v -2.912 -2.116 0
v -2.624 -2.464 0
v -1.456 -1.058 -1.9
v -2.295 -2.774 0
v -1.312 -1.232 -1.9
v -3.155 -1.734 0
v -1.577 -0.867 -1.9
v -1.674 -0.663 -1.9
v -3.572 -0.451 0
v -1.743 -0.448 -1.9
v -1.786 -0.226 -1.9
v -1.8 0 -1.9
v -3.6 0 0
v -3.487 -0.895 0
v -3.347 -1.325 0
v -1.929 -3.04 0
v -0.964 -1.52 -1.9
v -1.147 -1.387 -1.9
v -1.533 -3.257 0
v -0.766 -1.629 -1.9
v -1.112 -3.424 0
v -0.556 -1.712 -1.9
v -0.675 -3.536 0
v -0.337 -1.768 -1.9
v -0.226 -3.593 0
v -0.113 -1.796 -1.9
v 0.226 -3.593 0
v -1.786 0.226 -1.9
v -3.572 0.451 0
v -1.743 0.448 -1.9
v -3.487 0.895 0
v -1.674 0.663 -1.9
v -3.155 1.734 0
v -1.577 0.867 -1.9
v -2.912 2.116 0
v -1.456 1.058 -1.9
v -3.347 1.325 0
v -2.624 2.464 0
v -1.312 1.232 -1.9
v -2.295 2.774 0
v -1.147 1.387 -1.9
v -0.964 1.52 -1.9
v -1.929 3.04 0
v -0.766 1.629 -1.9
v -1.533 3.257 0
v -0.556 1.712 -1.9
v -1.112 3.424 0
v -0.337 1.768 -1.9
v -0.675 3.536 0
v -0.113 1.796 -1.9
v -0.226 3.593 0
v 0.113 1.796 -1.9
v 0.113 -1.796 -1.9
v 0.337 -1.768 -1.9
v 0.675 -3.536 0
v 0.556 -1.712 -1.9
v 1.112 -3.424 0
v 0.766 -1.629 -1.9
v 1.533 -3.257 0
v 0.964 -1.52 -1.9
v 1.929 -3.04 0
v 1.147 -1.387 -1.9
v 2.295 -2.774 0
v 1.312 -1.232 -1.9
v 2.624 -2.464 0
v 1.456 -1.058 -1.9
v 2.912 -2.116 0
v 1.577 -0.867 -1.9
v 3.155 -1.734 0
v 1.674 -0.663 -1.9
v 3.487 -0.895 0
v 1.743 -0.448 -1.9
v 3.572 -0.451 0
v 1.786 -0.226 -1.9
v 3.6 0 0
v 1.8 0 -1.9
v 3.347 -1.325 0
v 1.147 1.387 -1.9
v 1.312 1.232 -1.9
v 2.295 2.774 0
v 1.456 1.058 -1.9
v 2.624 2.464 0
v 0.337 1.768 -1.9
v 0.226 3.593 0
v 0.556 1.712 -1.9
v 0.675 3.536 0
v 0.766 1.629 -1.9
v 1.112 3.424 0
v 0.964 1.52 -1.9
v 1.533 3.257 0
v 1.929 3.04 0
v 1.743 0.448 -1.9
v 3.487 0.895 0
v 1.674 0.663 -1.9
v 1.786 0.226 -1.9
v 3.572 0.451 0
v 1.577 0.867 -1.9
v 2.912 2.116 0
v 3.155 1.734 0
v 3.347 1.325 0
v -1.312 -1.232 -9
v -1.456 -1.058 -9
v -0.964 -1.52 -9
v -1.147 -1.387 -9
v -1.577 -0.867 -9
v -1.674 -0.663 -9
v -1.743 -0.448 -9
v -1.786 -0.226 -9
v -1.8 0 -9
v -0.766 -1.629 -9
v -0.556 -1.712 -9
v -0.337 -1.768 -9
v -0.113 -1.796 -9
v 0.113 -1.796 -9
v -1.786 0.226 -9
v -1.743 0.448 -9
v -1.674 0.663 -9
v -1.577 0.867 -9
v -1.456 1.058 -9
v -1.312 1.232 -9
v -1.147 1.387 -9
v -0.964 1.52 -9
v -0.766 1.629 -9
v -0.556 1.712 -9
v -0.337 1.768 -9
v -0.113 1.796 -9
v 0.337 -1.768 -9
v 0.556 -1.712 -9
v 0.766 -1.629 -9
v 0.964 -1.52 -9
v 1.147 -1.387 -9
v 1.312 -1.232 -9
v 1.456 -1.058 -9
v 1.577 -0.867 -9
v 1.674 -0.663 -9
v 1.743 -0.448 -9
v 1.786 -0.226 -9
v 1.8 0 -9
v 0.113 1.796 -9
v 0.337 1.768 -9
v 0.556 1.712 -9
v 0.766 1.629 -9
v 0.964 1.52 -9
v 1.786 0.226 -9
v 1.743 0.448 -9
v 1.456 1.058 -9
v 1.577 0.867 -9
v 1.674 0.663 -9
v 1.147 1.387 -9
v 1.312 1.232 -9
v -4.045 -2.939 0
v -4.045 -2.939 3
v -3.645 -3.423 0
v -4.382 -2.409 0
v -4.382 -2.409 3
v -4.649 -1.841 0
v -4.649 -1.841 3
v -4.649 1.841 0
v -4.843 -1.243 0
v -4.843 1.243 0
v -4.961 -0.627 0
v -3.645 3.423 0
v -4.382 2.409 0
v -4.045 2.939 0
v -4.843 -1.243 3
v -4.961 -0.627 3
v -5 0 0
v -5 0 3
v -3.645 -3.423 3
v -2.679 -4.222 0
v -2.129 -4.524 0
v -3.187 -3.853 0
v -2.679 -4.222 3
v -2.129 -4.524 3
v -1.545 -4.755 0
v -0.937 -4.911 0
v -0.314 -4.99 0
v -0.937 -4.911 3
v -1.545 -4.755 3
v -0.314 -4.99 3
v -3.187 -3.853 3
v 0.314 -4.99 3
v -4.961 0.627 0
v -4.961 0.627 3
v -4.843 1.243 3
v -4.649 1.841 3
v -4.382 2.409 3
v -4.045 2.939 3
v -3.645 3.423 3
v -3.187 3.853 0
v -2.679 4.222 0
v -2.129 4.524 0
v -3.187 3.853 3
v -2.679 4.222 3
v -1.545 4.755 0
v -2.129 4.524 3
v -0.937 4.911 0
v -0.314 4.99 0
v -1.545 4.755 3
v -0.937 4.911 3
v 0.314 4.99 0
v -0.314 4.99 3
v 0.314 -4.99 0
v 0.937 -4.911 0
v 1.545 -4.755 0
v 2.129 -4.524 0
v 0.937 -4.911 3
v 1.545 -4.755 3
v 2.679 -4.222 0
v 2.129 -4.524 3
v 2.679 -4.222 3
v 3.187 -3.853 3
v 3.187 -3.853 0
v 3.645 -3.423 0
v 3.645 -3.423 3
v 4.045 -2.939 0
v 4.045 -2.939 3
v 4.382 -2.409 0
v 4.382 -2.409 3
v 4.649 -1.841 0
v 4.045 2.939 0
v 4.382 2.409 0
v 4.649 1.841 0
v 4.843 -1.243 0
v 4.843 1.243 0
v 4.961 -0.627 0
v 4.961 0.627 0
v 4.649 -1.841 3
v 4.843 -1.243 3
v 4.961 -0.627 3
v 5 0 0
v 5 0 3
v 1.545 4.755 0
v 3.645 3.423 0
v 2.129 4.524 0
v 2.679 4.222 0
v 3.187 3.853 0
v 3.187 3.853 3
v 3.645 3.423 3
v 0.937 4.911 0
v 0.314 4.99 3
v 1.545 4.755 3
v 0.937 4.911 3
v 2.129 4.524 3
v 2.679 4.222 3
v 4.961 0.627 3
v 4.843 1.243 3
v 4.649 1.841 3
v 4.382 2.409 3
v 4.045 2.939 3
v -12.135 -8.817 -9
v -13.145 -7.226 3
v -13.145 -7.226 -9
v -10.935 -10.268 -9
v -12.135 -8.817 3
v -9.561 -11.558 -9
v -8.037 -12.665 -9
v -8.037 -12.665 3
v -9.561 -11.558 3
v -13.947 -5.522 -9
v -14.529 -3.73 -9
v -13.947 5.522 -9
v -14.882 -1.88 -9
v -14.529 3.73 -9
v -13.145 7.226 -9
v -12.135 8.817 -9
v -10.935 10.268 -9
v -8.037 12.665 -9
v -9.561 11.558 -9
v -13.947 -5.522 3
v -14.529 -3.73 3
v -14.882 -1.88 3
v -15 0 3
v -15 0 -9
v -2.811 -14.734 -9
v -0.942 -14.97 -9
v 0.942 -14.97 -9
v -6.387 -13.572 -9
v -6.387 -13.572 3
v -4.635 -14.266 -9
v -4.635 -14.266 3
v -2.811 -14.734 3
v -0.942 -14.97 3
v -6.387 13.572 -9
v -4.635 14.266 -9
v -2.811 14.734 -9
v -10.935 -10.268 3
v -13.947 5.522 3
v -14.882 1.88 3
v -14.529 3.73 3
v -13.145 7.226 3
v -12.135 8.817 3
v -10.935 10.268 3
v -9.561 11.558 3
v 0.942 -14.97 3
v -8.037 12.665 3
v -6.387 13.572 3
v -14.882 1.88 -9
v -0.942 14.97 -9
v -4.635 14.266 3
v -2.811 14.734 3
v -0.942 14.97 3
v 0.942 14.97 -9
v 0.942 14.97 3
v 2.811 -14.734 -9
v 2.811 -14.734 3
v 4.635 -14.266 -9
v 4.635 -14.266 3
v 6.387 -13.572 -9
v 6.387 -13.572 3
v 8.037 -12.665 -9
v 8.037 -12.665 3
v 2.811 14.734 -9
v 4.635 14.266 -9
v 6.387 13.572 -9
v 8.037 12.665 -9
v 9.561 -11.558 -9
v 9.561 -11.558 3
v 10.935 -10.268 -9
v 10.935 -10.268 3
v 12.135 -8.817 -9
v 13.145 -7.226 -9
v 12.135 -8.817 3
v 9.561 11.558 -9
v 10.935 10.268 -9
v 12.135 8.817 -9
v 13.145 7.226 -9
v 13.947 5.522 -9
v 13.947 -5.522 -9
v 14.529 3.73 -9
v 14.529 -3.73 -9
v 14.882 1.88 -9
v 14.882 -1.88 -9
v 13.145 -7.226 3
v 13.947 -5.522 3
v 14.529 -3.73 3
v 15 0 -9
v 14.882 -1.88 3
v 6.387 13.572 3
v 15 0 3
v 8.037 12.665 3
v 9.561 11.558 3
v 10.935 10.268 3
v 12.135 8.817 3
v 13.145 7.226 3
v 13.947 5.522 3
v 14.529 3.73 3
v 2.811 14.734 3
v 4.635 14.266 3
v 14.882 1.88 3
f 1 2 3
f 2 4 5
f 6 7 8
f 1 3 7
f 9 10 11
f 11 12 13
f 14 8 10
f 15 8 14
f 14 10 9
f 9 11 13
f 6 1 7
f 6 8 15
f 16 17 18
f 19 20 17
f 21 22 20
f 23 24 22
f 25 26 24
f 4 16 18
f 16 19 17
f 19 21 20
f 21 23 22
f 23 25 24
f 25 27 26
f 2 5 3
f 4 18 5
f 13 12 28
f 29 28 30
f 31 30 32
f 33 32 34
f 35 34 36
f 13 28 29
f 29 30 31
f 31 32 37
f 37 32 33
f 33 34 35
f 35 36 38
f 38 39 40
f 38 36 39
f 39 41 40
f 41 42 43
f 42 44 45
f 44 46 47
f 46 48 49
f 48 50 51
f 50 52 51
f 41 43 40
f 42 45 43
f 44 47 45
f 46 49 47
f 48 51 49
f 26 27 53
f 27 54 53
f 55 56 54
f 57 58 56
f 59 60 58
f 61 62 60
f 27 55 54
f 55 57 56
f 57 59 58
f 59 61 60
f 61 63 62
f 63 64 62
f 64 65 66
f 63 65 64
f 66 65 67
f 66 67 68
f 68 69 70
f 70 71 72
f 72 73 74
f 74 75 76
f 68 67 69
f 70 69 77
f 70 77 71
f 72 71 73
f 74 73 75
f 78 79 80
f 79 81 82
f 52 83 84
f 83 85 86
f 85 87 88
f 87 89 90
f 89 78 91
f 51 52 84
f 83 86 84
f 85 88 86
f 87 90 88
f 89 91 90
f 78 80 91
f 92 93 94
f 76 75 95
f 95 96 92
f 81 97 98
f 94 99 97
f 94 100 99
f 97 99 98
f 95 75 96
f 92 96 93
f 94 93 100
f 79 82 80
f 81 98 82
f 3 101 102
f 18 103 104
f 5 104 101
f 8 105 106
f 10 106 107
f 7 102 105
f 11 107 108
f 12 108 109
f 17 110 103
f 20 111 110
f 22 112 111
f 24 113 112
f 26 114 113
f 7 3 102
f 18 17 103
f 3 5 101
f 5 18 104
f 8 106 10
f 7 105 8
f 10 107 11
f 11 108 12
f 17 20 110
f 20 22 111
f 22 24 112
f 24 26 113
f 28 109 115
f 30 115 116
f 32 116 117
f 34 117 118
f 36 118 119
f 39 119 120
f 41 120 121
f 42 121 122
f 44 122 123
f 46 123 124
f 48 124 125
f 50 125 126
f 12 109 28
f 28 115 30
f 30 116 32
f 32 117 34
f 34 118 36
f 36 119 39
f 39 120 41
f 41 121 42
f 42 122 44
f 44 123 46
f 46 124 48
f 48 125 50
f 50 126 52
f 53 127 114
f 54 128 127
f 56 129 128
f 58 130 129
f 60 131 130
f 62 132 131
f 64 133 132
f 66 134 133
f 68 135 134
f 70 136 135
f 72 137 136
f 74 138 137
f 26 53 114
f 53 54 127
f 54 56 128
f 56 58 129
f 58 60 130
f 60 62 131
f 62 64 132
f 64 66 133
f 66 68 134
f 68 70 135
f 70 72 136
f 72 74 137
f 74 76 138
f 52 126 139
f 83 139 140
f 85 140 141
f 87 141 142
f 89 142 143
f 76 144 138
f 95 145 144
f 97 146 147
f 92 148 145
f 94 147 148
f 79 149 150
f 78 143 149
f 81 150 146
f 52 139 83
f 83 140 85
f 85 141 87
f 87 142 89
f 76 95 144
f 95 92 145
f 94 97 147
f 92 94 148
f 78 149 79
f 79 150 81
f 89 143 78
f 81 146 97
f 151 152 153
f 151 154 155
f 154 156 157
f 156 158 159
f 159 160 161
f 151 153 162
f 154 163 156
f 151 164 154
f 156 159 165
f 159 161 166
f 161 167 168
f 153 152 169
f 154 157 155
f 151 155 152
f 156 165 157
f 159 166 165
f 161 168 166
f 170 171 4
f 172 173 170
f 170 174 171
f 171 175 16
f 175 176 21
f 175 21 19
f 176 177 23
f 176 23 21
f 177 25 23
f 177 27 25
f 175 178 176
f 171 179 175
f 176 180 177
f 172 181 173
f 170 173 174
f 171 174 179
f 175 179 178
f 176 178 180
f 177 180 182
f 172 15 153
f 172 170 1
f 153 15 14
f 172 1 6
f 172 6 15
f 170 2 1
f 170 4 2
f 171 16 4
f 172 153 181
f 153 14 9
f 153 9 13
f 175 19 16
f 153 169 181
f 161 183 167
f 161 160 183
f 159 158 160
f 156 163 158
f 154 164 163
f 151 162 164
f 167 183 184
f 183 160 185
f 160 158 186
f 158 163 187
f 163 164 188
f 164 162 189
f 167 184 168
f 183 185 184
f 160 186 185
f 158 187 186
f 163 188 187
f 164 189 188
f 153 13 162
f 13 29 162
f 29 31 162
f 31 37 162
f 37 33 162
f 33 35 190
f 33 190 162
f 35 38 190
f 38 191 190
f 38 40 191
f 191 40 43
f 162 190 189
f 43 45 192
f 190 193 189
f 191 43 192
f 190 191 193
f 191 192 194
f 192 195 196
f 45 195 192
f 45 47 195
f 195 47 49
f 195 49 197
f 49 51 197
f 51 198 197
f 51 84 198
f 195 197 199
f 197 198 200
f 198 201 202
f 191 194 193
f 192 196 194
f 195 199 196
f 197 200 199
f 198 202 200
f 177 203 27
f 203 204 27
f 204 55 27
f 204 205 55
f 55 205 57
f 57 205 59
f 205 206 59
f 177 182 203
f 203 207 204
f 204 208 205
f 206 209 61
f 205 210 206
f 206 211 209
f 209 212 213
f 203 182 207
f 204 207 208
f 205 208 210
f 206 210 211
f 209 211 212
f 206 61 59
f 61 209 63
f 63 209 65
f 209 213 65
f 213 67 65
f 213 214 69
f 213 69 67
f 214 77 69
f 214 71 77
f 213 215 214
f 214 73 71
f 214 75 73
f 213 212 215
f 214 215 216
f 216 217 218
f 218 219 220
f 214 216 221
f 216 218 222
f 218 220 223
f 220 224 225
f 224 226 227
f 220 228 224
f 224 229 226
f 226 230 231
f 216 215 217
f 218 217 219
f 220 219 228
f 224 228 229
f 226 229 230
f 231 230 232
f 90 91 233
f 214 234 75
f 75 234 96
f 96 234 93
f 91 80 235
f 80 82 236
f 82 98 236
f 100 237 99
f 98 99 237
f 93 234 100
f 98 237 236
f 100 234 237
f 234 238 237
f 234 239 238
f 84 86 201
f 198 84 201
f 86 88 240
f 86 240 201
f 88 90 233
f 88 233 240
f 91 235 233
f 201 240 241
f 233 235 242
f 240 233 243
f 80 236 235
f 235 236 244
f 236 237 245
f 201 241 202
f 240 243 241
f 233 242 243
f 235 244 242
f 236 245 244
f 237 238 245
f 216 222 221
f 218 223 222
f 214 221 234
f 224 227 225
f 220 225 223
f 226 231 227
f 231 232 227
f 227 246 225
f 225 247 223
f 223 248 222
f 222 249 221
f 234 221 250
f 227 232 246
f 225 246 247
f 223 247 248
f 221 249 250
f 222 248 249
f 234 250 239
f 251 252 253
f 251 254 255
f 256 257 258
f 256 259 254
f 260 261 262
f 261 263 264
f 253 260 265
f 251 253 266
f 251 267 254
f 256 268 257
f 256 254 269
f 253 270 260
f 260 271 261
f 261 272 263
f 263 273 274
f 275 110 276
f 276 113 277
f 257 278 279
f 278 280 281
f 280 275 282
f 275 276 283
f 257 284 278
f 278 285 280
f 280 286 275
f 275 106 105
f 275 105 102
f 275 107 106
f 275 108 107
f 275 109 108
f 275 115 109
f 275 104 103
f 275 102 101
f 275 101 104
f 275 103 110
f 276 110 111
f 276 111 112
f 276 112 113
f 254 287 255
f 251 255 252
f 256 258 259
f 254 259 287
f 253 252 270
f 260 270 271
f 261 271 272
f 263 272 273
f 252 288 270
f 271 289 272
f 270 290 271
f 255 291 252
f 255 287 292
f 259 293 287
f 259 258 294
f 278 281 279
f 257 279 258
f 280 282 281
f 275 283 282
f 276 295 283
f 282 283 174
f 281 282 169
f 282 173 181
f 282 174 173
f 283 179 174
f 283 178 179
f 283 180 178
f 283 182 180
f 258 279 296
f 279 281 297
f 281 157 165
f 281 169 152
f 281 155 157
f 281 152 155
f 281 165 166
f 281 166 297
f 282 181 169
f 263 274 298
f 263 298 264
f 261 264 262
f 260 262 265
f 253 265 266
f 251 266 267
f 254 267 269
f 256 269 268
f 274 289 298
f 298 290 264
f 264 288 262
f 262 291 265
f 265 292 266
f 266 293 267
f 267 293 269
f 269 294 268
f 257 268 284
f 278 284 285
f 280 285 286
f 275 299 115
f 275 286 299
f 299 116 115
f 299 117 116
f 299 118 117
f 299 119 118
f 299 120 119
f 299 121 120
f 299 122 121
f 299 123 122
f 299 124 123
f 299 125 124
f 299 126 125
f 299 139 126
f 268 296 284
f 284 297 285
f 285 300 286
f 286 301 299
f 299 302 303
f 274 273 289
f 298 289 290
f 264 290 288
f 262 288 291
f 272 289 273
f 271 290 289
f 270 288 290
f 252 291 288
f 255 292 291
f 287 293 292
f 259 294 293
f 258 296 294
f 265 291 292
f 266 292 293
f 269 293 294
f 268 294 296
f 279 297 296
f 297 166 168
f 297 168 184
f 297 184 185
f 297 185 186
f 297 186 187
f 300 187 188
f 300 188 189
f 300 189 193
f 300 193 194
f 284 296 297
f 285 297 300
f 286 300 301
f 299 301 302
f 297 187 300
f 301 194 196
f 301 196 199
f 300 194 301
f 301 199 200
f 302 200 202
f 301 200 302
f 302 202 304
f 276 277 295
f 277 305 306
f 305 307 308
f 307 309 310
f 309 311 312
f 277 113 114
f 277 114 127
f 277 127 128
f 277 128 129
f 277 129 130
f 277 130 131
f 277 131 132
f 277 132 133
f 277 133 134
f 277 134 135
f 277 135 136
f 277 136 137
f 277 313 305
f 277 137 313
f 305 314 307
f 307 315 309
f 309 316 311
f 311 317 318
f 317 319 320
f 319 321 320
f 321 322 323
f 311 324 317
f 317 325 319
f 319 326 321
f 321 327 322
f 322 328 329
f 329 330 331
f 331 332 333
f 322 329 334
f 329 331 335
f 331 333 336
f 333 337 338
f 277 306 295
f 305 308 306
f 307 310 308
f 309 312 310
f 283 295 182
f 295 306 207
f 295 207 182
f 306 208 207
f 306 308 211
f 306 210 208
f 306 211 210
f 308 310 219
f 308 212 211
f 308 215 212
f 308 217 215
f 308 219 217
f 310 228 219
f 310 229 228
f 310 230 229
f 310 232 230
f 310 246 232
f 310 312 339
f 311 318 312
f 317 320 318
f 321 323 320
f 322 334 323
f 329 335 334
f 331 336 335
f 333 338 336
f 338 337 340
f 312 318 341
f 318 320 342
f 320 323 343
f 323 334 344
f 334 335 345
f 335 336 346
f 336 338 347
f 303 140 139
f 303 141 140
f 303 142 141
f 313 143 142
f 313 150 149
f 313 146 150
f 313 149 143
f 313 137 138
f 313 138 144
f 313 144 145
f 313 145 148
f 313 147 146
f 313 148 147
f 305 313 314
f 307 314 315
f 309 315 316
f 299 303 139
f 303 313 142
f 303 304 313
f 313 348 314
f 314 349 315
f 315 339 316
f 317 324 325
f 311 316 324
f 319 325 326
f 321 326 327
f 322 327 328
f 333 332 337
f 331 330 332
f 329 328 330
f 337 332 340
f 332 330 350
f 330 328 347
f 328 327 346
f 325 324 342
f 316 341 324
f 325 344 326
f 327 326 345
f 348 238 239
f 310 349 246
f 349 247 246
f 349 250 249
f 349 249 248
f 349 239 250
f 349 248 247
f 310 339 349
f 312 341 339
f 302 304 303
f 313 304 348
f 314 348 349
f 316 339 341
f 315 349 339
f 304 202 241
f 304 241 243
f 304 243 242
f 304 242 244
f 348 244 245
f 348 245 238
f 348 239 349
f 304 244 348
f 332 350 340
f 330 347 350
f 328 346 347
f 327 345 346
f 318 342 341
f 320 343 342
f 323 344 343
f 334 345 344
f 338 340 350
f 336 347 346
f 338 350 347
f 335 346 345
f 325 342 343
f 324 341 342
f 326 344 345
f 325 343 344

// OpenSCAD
$fn = 50;

difference() {
	union() {
		translate(v = [0, 0, -9.0]) {
			cylinder(h = 12, r = 15.0);
		}
	}
	union() {
		translate(v = [0, 0, 0]) {
			rotate(a = [0, 0, 0]) {
				difference() {
					union() {
						translate(v = [0, 0, -12.0]) {
							cylinder(h = 12, r = 1.5);
						}
						translate(v = [0, 0, -1.9]) {
							cylinder(h = 1.9, r1 = 1.8, r2 = 3.6);
						}
						translate(v = [0, 0, -12.0]) {
							cylinder(h = 12, r = 1.8);
						}
						translate(v = [0, 0, -12.0]) {
							cylinder(h = 12, r = 1.5);
						}
					}
					union();
				}
			}
		}
		#cylinder(h = 3, r = 5.0);
	}
}
